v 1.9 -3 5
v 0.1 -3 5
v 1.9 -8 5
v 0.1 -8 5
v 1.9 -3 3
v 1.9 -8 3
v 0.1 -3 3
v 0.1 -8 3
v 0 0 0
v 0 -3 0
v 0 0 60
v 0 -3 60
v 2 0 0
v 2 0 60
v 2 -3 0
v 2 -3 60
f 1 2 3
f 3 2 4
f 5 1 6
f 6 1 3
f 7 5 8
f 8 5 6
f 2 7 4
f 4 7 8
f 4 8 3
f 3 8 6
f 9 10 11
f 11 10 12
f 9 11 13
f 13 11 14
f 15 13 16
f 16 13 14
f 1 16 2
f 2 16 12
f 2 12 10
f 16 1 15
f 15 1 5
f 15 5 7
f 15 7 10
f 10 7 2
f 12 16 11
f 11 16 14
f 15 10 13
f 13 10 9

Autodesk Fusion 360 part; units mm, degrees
sketch "Sketch1" plane through (0, 0, 0) normal (0, 0, 1) x (1, 0, 0)
  line L0 (0, 0) -> (2, 0)
  line L1 (2, 0) -> (2, -3)
  line L2 (2, -3) -> (0, -3)
  line L3 (0, -3) -> (0, 0)
  dimension "d8" = 2
  dimension "d9" = 3
extrude "Extrude1" add sketch "Sketch1" along normal blind 60
sketch "Sketch2" plane through (0, -3, 0) normal (0, -1, 0) x (1, 0, 0)
  line L0 (0, 0) -> (2, 0)
  line L1 (2, 0) -> (2, 60)
  line L2 (2, 60) -> (0, 60)
  line L3 (0, 60) -> (0, 0)
  line L4 (0.1, 3) -> (1.9, 3)
  line L5 (1.9, 3) -> (1.9, 5)
  line L6 (1.9, 5) -> (0.1, 5)
  line L7 (0.1, 5) -> (0.1, 3)
  dimension "d12" = 1.8
  dimension "d13" = 2
  dimension "d16" = 3
  dimension "d17" = 0.1
extrude "Extrude2" add sketch "Sketch2" along normal blind 5 contours L4 L5 L6 L7
equation "length = 60 mm"
equation "width = 3 mm"
equation "height = 2 mm"
equation "dent_length = 5 mm"
equation "dent_width = 2 mm"
equation "dent_height = 1.8 mm"
equation "dent_distance = 3 mm"
equation "d8 = height"
equation "d9 = width"
equation "d10 = length"
equation "d12 = dent_height"
equation "d13 = dent_width"
equation "d14 = dent_length"
equation "d16 = dent_distance"
